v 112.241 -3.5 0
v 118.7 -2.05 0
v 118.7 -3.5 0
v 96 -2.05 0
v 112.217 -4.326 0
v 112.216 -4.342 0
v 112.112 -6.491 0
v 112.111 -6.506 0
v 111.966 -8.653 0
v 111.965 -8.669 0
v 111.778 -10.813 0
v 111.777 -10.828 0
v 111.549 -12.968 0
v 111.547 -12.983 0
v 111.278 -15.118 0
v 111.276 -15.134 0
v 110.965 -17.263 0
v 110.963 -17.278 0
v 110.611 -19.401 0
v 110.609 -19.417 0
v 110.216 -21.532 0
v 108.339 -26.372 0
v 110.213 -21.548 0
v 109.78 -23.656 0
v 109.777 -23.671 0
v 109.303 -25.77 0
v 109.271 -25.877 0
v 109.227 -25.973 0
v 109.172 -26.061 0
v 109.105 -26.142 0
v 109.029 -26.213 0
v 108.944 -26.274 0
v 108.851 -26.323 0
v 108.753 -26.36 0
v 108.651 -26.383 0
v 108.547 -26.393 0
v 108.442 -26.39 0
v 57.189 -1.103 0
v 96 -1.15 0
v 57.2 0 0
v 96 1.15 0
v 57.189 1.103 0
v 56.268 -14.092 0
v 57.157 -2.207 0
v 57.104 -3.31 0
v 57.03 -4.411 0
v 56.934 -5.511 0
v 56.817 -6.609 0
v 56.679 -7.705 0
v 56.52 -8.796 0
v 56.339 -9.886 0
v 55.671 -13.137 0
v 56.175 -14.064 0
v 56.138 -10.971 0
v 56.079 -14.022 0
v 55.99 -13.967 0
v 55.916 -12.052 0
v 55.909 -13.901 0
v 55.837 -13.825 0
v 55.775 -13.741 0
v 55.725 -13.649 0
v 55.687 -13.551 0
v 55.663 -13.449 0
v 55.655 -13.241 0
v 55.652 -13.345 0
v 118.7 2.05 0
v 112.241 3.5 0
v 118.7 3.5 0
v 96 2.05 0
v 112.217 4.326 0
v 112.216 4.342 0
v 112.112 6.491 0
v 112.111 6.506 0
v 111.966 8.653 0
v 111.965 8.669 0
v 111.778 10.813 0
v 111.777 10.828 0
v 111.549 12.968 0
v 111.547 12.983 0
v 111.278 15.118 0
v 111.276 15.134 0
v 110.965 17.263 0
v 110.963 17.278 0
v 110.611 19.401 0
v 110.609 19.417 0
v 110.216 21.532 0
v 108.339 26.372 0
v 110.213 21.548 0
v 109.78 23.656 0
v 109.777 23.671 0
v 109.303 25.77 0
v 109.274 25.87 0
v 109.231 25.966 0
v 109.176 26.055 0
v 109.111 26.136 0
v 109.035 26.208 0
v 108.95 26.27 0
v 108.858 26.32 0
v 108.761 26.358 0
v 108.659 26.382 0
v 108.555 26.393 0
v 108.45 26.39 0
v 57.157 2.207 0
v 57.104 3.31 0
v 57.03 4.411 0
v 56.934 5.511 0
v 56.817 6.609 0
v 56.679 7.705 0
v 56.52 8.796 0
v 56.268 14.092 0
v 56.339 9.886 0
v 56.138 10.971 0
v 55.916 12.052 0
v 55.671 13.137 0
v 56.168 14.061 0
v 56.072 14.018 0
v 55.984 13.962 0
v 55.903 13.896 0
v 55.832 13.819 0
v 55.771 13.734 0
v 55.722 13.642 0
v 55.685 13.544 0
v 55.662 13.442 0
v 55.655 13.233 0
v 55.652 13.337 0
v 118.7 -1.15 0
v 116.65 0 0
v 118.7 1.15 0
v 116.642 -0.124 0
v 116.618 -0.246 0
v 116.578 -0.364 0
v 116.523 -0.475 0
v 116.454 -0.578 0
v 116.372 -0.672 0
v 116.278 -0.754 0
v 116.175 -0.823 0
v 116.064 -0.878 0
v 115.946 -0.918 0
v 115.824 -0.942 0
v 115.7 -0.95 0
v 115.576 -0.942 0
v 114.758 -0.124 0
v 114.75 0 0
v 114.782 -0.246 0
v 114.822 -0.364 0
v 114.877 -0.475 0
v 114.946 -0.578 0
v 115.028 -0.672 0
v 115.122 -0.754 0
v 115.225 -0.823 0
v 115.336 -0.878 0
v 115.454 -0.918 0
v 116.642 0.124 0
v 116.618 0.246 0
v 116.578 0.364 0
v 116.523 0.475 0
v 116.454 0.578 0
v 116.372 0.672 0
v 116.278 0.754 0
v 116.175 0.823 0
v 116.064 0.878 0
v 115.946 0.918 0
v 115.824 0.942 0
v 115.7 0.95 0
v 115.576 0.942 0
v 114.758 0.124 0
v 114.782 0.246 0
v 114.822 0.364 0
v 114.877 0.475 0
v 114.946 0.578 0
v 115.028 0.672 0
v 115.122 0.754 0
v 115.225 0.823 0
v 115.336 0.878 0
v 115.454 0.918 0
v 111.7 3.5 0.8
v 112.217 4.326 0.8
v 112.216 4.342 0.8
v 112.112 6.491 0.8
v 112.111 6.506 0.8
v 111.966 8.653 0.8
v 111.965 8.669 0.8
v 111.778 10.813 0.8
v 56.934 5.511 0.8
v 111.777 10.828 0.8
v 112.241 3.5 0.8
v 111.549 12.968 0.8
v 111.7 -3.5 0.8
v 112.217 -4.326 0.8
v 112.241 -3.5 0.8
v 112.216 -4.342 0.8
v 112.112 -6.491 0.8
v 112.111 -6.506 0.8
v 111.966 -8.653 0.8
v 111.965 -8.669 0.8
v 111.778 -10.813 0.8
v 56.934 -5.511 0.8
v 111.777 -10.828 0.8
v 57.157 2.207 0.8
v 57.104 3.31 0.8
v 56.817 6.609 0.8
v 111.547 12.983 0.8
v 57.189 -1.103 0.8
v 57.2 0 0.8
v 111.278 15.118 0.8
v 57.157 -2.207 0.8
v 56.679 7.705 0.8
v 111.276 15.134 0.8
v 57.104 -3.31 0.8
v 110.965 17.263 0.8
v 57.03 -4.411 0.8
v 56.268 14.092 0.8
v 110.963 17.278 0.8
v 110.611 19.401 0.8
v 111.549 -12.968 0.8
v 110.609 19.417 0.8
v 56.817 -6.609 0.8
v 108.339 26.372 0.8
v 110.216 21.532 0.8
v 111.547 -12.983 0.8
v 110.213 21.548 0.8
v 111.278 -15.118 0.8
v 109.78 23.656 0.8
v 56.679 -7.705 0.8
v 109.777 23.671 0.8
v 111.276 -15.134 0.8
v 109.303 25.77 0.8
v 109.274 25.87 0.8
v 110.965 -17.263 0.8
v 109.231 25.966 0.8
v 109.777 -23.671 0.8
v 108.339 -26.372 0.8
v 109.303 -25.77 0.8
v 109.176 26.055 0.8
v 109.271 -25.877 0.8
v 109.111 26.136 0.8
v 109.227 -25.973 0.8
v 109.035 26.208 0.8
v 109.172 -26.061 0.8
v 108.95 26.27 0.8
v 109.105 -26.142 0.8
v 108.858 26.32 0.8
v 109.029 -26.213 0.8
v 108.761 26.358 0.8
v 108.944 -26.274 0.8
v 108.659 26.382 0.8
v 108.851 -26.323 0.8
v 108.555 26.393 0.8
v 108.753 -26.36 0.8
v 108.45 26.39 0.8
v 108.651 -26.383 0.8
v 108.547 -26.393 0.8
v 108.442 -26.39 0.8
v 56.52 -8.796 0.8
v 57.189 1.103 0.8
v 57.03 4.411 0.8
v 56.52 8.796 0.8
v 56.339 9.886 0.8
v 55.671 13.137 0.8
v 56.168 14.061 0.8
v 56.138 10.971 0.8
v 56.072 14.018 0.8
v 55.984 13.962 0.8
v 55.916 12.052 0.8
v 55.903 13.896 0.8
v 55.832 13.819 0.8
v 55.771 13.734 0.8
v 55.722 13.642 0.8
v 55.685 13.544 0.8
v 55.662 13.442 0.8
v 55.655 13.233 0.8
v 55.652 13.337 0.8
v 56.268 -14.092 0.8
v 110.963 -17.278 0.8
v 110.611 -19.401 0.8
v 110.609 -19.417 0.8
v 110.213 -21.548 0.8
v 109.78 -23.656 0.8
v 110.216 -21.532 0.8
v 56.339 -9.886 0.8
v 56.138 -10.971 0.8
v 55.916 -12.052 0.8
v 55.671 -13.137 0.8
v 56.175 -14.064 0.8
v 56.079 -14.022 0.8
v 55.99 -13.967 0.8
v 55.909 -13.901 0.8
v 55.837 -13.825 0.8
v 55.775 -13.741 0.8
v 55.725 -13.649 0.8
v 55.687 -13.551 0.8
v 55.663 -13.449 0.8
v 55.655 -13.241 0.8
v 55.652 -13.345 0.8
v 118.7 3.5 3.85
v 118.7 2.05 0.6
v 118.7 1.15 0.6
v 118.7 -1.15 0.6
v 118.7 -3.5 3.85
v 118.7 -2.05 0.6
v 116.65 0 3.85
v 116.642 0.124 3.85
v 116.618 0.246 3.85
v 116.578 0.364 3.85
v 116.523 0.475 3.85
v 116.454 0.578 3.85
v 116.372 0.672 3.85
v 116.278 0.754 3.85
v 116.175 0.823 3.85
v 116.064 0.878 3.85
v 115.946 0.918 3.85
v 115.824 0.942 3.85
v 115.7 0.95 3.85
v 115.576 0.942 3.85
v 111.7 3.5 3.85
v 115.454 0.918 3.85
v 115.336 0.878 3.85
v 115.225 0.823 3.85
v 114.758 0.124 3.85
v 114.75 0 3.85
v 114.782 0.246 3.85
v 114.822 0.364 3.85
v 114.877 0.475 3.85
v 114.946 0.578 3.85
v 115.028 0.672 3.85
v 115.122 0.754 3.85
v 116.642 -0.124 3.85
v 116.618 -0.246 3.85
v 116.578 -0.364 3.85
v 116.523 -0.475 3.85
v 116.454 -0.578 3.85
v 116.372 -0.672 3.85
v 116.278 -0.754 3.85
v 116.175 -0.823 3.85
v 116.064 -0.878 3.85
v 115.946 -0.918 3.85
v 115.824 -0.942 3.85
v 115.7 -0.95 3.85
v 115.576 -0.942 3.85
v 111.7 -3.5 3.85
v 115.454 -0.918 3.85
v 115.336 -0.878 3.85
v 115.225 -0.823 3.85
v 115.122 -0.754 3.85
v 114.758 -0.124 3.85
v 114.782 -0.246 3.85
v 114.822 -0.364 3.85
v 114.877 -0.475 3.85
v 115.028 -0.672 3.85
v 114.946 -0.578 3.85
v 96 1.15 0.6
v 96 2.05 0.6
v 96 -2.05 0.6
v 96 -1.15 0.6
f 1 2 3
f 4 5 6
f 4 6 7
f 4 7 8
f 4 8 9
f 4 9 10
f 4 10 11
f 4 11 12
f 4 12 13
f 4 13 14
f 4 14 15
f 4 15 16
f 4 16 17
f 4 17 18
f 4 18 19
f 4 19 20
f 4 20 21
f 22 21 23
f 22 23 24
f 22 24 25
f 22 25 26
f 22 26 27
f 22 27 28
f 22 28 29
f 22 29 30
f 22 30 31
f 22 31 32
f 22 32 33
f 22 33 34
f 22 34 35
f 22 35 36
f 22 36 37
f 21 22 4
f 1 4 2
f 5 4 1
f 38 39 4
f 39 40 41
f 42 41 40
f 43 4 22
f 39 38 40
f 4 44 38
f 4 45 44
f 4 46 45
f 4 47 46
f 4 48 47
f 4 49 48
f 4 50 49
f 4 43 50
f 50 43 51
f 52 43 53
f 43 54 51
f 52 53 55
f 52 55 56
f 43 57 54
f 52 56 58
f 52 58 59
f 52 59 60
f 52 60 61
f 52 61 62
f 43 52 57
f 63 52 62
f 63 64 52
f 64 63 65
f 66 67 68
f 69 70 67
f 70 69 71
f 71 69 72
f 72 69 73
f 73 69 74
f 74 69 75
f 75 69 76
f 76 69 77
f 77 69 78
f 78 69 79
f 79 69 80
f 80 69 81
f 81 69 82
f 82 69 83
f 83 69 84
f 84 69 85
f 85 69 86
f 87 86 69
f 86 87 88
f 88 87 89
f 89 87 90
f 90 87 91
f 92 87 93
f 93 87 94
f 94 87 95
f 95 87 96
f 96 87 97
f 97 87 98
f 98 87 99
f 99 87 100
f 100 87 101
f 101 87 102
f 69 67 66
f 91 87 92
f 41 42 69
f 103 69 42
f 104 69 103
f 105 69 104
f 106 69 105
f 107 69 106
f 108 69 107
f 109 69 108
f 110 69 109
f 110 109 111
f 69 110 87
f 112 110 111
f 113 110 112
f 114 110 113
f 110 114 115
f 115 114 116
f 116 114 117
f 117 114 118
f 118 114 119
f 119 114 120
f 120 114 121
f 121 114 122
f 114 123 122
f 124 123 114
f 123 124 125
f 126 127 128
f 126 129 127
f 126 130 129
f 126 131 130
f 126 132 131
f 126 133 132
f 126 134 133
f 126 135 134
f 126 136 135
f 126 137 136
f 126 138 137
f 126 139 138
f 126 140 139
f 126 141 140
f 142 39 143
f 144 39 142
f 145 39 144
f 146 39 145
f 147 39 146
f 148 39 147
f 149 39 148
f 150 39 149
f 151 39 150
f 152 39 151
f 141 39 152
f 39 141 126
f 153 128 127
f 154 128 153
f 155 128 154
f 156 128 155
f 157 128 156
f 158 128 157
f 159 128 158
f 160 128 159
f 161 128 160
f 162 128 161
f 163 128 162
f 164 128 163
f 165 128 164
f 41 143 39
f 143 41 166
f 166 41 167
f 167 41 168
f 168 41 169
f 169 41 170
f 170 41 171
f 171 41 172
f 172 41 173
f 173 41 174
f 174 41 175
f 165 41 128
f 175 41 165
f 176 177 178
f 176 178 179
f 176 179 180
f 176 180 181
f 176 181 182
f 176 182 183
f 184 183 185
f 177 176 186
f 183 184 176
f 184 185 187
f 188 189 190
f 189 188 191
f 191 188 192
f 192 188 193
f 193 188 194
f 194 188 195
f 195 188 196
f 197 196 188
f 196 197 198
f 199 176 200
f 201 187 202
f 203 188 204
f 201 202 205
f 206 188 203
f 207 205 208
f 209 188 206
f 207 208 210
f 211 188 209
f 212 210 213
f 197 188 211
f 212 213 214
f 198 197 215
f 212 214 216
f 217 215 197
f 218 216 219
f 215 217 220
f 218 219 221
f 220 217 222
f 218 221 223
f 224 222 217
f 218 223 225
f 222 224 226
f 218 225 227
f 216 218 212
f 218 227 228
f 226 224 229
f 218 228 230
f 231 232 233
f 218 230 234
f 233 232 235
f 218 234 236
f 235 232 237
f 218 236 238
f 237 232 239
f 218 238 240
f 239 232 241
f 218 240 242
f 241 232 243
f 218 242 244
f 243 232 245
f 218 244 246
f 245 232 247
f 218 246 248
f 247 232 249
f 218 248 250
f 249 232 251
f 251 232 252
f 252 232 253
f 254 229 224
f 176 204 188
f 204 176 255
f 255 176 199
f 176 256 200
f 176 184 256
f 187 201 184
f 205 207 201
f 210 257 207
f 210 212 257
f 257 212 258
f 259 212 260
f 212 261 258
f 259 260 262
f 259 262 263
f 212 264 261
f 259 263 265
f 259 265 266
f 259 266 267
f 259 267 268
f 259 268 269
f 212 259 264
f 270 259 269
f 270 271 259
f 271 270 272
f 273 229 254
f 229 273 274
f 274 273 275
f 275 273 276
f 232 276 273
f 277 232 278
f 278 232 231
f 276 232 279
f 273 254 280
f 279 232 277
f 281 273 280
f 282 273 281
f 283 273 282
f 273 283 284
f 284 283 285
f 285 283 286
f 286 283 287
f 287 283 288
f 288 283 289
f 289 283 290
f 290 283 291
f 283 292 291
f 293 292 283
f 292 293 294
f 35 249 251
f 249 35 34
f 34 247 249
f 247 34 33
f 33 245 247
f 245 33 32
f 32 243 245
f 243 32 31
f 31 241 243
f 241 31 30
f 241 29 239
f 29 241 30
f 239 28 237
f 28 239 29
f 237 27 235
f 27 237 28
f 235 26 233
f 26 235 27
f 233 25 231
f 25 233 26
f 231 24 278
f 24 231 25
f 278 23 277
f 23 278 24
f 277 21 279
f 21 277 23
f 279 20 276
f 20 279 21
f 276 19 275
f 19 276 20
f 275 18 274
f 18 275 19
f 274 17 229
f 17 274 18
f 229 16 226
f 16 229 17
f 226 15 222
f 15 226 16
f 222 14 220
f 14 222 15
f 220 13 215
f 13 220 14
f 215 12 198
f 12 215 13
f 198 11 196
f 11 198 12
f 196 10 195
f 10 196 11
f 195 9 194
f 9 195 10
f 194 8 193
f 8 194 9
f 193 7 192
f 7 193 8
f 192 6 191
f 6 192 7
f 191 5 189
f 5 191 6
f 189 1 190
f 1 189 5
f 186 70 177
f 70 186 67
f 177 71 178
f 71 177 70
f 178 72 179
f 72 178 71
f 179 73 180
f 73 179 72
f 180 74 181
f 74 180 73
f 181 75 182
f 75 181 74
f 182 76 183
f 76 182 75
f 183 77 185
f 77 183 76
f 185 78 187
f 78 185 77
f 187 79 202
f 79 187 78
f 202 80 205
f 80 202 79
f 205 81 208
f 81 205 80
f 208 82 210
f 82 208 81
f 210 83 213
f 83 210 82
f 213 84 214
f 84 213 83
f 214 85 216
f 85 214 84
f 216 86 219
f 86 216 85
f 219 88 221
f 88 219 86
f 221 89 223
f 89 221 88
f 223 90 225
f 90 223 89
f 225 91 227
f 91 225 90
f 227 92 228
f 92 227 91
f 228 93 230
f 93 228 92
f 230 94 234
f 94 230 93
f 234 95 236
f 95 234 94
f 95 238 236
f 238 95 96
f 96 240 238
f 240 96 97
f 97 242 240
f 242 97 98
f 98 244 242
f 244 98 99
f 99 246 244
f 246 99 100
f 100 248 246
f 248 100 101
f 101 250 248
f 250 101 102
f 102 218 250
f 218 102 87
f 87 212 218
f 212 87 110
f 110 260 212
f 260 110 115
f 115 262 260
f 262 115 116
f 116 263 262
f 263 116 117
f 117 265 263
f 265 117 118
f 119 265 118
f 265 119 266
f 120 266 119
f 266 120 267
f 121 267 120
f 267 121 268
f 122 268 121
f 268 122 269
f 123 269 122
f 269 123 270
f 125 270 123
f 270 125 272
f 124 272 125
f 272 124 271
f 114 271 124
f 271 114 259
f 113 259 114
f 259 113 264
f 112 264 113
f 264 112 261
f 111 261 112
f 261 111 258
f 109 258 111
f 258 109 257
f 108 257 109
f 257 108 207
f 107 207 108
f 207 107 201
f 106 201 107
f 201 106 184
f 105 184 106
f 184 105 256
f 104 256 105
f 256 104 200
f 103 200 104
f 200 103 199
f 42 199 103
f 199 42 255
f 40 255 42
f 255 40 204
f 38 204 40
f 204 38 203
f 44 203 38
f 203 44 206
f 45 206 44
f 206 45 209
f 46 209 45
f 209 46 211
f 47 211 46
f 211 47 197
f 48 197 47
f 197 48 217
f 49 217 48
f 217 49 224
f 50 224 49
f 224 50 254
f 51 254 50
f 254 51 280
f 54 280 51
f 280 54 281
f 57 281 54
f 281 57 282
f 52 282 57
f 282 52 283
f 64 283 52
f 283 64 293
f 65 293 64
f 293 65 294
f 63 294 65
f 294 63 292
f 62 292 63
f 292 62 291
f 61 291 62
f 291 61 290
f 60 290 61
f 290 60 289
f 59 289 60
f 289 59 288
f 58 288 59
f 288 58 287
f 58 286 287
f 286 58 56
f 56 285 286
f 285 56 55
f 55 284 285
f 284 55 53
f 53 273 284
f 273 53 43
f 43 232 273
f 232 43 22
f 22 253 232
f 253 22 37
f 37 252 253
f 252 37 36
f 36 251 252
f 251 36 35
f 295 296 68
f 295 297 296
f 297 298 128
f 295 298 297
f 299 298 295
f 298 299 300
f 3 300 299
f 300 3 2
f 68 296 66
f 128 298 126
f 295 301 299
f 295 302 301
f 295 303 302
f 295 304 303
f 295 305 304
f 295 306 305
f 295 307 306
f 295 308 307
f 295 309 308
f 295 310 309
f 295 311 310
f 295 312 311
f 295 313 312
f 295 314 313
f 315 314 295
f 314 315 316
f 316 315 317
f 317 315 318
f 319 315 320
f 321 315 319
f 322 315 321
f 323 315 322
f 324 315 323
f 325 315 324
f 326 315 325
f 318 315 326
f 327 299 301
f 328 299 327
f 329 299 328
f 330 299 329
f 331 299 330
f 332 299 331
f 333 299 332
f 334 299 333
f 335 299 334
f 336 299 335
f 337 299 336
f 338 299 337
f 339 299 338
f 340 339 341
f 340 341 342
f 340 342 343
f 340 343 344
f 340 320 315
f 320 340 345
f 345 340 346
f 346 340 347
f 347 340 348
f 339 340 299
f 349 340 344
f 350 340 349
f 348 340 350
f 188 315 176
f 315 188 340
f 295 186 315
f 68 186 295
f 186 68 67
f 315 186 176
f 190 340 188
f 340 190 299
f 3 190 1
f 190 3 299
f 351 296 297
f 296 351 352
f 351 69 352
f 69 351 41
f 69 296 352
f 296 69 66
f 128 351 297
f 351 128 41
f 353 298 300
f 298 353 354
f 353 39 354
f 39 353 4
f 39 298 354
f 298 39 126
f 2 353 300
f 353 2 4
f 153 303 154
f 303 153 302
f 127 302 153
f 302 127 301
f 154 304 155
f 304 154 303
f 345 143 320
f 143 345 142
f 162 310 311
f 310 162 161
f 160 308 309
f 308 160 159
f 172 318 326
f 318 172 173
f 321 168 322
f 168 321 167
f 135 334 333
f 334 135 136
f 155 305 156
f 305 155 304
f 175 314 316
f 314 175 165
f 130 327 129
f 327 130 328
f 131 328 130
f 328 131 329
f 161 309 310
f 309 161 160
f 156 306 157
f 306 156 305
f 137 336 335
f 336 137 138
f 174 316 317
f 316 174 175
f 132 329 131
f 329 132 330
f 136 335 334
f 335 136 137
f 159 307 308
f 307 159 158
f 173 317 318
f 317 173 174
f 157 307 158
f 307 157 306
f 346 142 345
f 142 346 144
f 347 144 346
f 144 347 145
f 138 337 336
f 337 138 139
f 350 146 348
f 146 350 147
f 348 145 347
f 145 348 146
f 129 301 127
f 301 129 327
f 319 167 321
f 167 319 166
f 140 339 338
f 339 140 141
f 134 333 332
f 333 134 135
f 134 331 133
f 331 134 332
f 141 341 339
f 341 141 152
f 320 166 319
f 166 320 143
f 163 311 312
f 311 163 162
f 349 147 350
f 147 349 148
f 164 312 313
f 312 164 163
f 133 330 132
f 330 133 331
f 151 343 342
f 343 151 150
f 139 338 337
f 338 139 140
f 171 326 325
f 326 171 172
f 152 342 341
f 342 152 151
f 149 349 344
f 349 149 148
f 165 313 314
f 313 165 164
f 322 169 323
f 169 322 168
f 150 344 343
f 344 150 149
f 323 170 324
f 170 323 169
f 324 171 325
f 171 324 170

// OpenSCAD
// Gen-CZ — bobbin LID (top flange + locating tab). Print x12, flange face DOWN on the bed.
// CA-glue onto the hub top BEFORE winding. Tab = lap joint into the stator tab pocket; 1.75 mm filament
// pin through pin hole + stator ledge, trim flush. Lead slots carry both leads flush.
include <parameters.scad>;
$fn = 48;
module sector_2d(r_in, r_out, ang) {
    polygon([
        for (a = [-ang/2 : ang/24 : ang/2]) [r_in*cos(a), r_in*sin(a)],
        for (a = [ang/2 : -ang/24 : -ang/2]) [r_out*cos(a), r_out*sin(a)]
    ]);
}
module footprint_2d() { offset(r=wall) sector_2d(coil_id_r, coil_od_r, span_deg); }
module hub_2d()       { offset(delta=-coil_core_inset) sector_2d(coil_id_r, coil_od_r, span_deg); }

difference() {
    union() {
        linear_extrude(flange_t) footprint_2d();
        translate([coil_od_r + 0.2, -tab_w/2, 0]) cube([tab_len, tab_w, tab_h]);
    }
    translate([coil_mount_r, 0, -0.1]) cylinder(d=pin_d, h=tab_h + 1);
    for (y = [lead_y, -lead_y])
        translate([coil_od_r - coil_core_inset - 0.5, y - lead_slot_w/2, -0.1])
            cube([coil_core_inset + tab_len + 2, lead_slot_w, lead_groove_d + 0.1]);
}
